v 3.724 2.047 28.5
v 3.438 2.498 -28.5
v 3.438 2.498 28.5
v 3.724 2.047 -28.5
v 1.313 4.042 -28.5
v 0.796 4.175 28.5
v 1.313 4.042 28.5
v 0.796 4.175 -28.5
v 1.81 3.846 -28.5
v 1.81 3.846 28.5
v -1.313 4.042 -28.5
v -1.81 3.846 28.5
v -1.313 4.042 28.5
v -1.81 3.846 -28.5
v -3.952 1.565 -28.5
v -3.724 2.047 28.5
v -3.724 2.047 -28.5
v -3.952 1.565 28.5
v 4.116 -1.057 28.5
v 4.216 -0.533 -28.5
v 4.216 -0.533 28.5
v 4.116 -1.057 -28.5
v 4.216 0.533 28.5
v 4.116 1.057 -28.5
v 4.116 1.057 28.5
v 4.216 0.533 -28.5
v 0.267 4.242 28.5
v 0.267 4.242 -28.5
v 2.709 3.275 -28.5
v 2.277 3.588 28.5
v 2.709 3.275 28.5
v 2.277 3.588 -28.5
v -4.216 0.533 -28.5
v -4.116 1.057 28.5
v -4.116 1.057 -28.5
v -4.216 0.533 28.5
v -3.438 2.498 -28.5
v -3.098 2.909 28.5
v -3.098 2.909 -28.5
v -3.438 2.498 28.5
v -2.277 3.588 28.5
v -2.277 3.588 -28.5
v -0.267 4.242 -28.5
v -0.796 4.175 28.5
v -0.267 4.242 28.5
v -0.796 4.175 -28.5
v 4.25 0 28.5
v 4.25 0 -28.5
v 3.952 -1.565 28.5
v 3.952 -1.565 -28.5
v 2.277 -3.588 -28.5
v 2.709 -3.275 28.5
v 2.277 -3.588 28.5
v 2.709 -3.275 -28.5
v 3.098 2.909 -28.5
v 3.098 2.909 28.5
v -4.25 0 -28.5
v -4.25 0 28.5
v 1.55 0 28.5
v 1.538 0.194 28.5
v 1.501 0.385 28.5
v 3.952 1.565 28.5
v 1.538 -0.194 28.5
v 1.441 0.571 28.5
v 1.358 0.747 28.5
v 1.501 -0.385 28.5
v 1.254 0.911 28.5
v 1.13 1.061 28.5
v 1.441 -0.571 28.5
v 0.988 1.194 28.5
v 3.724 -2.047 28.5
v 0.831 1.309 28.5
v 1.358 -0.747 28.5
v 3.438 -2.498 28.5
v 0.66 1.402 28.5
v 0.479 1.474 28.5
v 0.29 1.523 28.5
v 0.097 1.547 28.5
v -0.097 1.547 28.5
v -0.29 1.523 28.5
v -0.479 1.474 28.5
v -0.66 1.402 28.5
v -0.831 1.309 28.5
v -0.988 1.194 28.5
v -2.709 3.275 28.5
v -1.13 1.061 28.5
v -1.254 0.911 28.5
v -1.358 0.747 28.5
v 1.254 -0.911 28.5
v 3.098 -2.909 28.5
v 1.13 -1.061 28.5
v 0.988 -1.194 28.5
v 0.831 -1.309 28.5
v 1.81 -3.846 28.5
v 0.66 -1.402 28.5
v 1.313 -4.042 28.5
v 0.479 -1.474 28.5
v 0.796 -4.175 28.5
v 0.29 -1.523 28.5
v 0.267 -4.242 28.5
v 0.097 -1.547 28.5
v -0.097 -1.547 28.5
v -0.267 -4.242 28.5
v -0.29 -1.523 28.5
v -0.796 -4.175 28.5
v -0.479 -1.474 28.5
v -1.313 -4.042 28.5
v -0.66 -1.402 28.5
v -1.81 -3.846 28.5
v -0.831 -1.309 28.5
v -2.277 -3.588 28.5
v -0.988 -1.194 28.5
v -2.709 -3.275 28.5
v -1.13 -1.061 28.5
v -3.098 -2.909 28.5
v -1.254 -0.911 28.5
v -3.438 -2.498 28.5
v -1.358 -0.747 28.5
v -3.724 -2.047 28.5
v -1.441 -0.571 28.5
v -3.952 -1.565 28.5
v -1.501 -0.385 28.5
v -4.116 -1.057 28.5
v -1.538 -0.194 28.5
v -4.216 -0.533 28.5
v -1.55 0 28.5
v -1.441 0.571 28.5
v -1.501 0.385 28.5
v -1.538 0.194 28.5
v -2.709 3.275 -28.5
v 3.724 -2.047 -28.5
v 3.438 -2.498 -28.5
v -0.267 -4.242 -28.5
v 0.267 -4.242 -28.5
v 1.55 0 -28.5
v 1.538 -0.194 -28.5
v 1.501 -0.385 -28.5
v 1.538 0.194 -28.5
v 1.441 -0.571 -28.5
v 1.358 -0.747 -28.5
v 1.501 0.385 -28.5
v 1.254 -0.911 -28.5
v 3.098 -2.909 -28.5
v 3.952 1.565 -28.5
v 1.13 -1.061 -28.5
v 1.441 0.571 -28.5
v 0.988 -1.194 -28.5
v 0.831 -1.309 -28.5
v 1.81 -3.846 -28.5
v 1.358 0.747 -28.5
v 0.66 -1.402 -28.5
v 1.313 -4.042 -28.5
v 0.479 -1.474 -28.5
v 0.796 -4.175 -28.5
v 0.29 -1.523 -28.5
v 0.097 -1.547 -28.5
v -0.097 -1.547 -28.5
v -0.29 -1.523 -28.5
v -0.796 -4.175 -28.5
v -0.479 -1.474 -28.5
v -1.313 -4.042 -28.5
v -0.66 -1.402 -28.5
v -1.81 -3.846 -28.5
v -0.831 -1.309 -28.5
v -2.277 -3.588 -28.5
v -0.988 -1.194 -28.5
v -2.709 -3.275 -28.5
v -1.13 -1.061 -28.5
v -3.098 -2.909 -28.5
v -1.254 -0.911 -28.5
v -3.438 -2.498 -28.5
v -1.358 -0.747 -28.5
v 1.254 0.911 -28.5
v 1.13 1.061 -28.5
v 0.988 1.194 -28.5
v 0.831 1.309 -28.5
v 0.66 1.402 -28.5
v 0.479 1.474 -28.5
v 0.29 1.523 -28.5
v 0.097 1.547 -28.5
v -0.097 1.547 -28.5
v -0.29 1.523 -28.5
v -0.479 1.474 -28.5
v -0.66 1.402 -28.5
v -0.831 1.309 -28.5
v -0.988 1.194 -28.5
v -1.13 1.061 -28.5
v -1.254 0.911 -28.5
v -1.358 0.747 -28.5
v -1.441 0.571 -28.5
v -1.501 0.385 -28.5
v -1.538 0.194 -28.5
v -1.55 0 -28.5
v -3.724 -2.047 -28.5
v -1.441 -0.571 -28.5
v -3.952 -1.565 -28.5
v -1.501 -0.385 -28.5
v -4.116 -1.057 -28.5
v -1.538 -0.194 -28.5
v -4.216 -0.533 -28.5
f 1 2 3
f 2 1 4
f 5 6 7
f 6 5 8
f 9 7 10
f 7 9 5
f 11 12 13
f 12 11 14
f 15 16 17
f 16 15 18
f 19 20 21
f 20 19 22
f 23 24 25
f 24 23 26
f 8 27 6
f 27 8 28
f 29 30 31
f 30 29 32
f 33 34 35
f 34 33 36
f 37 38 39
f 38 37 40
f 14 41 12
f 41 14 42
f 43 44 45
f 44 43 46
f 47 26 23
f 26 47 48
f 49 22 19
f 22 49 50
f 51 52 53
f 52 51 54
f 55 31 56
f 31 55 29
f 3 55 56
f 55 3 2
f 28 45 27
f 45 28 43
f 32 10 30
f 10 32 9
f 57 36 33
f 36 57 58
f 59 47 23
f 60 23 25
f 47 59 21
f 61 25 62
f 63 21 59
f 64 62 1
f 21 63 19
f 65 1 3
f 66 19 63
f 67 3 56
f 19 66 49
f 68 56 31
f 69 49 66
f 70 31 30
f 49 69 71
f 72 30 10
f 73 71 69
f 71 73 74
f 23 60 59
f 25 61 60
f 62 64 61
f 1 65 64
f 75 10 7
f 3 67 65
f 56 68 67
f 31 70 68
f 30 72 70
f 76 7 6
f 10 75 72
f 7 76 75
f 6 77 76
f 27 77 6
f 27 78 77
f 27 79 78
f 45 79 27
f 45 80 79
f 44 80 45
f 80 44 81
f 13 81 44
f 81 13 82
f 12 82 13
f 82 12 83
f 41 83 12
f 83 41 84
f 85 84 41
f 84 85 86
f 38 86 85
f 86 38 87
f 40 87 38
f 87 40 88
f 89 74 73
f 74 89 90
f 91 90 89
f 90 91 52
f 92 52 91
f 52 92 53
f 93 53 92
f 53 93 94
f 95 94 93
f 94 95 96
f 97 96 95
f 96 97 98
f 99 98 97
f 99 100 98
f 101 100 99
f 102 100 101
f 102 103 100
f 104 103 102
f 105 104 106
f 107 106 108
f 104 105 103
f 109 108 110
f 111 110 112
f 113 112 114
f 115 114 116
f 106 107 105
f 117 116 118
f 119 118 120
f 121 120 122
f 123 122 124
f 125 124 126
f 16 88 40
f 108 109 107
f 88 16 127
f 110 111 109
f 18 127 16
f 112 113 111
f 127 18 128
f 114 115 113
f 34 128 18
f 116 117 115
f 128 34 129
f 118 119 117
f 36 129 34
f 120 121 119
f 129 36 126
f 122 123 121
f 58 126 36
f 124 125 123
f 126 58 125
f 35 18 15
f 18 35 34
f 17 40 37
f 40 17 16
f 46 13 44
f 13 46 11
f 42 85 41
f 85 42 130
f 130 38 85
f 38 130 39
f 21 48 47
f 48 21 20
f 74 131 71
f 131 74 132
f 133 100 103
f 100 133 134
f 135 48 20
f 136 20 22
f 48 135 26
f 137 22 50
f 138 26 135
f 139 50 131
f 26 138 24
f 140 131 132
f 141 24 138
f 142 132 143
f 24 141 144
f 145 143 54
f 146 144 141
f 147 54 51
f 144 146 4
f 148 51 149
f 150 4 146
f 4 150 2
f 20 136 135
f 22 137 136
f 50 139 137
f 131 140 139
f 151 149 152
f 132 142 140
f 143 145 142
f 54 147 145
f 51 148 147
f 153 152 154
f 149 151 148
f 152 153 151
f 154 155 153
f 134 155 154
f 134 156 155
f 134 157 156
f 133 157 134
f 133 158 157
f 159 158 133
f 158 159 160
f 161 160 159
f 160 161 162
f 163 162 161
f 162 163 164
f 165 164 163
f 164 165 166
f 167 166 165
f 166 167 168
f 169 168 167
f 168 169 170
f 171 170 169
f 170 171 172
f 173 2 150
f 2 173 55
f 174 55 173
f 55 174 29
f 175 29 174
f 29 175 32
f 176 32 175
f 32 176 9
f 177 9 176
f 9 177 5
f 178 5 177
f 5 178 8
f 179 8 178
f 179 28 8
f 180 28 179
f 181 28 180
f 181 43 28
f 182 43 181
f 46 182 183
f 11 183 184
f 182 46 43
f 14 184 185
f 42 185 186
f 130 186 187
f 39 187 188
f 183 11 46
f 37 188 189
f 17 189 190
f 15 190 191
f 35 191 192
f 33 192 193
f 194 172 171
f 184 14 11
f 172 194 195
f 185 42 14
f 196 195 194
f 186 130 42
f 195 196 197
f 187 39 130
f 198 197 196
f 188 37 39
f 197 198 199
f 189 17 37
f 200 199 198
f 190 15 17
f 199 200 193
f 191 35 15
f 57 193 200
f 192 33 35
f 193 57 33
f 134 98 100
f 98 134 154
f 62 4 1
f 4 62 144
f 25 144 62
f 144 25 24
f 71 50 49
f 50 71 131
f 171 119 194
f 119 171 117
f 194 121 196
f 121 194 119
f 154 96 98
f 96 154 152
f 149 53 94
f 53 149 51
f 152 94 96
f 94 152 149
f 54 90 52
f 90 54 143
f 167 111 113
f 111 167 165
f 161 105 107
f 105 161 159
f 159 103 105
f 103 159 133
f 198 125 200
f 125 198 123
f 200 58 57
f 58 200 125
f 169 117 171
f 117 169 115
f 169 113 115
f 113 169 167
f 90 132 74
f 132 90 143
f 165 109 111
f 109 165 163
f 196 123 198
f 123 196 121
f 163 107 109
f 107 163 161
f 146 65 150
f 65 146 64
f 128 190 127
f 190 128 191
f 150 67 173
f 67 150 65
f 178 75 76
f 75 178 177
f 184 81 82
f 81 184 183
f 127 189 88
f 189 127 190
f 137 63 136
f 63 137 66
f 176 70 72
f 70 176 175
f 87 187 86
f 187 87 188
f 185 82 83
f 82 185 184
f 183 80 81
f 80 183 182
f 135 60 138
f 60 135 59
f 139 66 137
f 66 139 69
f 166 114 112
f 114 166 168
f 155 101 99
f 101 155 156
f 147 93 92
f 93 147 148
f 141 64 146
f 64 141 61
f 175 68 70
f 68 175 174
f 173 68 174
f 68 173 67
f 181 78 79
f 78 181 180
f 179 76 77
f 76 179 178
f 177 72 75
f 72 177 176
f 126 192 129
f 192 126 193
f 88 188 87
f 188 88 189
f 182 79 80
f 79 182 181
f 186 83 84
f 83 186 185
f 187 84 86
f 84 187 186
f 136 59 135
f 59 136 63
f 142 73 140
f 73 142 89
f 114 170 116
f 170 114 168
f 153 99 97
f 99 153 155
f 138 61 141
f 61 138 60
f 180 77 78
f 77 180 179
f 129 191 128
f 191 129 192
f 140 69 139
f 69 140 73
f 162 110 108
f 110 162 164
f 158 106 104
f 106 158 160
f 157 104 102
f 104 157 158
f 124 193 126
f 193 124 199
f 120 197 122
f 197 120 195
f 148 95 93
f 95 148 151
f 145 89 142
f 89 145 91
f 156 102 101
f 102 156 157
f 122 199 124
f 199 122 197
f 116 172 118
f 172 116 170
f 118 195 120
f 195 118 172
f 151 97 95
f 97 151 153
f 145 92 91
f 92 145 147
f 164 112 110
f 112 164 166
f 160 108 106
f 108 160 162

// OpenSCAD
$fn = 50;


difference() {
	union() {
		translate(v = [0, 0, -28.5000000000]) {
			cylinder(h = 57, r = 4.2500000000);
		}
	}
	union() {
		translate(v = [0, 0, -100.0000000000]) {
			cylinder(h = 200, r = 1.5500000000);
		}
	}
}
